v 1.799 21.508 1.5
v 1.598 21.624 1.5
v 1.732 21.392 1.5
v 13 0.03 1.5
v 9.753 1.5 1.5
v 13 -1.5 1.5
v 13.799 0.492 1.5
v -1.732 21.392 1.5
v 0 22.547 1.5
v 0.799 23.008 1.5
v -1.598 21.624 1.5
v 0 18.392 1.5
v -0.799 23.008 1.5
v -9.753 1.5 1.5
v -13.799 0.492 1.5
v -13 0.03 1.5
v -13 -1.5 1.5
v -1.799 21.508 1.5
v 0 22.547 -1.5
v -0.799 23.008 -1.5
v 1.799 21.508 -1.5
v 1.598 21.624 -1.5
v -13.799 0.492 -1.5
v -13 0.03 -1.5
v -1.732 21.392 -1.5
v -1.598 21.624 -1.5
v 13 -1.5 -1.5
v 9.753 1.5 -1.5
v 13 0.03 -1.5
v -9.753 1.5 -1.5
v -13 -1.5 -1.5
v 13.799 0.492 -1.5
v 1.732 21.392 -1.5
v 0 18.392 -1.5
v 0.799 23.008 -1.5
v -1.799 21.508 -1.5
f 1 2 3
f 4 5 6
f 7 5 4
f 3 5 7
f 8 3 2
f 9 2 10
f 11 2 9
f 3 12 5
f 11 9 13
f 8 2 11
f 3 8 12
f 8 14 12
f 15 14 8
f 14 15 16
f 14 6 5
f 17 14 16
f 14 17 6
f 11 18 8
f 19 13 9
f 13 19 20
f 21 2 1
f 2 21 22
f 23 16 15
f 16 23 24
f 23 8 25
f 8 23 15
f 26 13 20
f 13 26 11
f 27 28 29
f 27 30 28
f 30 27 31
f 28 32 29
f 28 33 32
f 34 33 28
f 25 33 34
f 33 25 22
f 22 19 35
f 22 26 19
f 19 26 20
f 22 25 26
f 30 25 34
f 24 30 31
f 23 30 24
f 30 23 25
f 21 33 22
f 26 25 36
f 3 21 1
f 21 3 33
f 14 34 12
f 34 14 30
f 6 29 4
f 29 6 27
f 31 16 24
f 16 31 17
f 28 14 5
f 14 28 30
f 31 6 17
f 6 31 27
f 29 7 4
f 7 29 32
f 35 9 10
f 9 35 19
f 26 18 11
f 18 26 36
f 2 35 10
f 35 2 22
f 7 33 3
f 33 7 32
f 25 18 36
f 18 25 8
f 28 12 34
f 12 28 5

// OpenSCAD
translate([-6, 11, 0]) {
    rotate([0, 0, 60]) {
        cube(size = [26, 3, 3], center=true);
    }
}
translate([0, 0, 0]) {
    cube(size = [26, 3, 3], center=true);
}
translate([6, 11, 0]) {
    rotate([0, 0, -60]) {
        cube(size = [26, 3, 3], center=true);
    }
}
